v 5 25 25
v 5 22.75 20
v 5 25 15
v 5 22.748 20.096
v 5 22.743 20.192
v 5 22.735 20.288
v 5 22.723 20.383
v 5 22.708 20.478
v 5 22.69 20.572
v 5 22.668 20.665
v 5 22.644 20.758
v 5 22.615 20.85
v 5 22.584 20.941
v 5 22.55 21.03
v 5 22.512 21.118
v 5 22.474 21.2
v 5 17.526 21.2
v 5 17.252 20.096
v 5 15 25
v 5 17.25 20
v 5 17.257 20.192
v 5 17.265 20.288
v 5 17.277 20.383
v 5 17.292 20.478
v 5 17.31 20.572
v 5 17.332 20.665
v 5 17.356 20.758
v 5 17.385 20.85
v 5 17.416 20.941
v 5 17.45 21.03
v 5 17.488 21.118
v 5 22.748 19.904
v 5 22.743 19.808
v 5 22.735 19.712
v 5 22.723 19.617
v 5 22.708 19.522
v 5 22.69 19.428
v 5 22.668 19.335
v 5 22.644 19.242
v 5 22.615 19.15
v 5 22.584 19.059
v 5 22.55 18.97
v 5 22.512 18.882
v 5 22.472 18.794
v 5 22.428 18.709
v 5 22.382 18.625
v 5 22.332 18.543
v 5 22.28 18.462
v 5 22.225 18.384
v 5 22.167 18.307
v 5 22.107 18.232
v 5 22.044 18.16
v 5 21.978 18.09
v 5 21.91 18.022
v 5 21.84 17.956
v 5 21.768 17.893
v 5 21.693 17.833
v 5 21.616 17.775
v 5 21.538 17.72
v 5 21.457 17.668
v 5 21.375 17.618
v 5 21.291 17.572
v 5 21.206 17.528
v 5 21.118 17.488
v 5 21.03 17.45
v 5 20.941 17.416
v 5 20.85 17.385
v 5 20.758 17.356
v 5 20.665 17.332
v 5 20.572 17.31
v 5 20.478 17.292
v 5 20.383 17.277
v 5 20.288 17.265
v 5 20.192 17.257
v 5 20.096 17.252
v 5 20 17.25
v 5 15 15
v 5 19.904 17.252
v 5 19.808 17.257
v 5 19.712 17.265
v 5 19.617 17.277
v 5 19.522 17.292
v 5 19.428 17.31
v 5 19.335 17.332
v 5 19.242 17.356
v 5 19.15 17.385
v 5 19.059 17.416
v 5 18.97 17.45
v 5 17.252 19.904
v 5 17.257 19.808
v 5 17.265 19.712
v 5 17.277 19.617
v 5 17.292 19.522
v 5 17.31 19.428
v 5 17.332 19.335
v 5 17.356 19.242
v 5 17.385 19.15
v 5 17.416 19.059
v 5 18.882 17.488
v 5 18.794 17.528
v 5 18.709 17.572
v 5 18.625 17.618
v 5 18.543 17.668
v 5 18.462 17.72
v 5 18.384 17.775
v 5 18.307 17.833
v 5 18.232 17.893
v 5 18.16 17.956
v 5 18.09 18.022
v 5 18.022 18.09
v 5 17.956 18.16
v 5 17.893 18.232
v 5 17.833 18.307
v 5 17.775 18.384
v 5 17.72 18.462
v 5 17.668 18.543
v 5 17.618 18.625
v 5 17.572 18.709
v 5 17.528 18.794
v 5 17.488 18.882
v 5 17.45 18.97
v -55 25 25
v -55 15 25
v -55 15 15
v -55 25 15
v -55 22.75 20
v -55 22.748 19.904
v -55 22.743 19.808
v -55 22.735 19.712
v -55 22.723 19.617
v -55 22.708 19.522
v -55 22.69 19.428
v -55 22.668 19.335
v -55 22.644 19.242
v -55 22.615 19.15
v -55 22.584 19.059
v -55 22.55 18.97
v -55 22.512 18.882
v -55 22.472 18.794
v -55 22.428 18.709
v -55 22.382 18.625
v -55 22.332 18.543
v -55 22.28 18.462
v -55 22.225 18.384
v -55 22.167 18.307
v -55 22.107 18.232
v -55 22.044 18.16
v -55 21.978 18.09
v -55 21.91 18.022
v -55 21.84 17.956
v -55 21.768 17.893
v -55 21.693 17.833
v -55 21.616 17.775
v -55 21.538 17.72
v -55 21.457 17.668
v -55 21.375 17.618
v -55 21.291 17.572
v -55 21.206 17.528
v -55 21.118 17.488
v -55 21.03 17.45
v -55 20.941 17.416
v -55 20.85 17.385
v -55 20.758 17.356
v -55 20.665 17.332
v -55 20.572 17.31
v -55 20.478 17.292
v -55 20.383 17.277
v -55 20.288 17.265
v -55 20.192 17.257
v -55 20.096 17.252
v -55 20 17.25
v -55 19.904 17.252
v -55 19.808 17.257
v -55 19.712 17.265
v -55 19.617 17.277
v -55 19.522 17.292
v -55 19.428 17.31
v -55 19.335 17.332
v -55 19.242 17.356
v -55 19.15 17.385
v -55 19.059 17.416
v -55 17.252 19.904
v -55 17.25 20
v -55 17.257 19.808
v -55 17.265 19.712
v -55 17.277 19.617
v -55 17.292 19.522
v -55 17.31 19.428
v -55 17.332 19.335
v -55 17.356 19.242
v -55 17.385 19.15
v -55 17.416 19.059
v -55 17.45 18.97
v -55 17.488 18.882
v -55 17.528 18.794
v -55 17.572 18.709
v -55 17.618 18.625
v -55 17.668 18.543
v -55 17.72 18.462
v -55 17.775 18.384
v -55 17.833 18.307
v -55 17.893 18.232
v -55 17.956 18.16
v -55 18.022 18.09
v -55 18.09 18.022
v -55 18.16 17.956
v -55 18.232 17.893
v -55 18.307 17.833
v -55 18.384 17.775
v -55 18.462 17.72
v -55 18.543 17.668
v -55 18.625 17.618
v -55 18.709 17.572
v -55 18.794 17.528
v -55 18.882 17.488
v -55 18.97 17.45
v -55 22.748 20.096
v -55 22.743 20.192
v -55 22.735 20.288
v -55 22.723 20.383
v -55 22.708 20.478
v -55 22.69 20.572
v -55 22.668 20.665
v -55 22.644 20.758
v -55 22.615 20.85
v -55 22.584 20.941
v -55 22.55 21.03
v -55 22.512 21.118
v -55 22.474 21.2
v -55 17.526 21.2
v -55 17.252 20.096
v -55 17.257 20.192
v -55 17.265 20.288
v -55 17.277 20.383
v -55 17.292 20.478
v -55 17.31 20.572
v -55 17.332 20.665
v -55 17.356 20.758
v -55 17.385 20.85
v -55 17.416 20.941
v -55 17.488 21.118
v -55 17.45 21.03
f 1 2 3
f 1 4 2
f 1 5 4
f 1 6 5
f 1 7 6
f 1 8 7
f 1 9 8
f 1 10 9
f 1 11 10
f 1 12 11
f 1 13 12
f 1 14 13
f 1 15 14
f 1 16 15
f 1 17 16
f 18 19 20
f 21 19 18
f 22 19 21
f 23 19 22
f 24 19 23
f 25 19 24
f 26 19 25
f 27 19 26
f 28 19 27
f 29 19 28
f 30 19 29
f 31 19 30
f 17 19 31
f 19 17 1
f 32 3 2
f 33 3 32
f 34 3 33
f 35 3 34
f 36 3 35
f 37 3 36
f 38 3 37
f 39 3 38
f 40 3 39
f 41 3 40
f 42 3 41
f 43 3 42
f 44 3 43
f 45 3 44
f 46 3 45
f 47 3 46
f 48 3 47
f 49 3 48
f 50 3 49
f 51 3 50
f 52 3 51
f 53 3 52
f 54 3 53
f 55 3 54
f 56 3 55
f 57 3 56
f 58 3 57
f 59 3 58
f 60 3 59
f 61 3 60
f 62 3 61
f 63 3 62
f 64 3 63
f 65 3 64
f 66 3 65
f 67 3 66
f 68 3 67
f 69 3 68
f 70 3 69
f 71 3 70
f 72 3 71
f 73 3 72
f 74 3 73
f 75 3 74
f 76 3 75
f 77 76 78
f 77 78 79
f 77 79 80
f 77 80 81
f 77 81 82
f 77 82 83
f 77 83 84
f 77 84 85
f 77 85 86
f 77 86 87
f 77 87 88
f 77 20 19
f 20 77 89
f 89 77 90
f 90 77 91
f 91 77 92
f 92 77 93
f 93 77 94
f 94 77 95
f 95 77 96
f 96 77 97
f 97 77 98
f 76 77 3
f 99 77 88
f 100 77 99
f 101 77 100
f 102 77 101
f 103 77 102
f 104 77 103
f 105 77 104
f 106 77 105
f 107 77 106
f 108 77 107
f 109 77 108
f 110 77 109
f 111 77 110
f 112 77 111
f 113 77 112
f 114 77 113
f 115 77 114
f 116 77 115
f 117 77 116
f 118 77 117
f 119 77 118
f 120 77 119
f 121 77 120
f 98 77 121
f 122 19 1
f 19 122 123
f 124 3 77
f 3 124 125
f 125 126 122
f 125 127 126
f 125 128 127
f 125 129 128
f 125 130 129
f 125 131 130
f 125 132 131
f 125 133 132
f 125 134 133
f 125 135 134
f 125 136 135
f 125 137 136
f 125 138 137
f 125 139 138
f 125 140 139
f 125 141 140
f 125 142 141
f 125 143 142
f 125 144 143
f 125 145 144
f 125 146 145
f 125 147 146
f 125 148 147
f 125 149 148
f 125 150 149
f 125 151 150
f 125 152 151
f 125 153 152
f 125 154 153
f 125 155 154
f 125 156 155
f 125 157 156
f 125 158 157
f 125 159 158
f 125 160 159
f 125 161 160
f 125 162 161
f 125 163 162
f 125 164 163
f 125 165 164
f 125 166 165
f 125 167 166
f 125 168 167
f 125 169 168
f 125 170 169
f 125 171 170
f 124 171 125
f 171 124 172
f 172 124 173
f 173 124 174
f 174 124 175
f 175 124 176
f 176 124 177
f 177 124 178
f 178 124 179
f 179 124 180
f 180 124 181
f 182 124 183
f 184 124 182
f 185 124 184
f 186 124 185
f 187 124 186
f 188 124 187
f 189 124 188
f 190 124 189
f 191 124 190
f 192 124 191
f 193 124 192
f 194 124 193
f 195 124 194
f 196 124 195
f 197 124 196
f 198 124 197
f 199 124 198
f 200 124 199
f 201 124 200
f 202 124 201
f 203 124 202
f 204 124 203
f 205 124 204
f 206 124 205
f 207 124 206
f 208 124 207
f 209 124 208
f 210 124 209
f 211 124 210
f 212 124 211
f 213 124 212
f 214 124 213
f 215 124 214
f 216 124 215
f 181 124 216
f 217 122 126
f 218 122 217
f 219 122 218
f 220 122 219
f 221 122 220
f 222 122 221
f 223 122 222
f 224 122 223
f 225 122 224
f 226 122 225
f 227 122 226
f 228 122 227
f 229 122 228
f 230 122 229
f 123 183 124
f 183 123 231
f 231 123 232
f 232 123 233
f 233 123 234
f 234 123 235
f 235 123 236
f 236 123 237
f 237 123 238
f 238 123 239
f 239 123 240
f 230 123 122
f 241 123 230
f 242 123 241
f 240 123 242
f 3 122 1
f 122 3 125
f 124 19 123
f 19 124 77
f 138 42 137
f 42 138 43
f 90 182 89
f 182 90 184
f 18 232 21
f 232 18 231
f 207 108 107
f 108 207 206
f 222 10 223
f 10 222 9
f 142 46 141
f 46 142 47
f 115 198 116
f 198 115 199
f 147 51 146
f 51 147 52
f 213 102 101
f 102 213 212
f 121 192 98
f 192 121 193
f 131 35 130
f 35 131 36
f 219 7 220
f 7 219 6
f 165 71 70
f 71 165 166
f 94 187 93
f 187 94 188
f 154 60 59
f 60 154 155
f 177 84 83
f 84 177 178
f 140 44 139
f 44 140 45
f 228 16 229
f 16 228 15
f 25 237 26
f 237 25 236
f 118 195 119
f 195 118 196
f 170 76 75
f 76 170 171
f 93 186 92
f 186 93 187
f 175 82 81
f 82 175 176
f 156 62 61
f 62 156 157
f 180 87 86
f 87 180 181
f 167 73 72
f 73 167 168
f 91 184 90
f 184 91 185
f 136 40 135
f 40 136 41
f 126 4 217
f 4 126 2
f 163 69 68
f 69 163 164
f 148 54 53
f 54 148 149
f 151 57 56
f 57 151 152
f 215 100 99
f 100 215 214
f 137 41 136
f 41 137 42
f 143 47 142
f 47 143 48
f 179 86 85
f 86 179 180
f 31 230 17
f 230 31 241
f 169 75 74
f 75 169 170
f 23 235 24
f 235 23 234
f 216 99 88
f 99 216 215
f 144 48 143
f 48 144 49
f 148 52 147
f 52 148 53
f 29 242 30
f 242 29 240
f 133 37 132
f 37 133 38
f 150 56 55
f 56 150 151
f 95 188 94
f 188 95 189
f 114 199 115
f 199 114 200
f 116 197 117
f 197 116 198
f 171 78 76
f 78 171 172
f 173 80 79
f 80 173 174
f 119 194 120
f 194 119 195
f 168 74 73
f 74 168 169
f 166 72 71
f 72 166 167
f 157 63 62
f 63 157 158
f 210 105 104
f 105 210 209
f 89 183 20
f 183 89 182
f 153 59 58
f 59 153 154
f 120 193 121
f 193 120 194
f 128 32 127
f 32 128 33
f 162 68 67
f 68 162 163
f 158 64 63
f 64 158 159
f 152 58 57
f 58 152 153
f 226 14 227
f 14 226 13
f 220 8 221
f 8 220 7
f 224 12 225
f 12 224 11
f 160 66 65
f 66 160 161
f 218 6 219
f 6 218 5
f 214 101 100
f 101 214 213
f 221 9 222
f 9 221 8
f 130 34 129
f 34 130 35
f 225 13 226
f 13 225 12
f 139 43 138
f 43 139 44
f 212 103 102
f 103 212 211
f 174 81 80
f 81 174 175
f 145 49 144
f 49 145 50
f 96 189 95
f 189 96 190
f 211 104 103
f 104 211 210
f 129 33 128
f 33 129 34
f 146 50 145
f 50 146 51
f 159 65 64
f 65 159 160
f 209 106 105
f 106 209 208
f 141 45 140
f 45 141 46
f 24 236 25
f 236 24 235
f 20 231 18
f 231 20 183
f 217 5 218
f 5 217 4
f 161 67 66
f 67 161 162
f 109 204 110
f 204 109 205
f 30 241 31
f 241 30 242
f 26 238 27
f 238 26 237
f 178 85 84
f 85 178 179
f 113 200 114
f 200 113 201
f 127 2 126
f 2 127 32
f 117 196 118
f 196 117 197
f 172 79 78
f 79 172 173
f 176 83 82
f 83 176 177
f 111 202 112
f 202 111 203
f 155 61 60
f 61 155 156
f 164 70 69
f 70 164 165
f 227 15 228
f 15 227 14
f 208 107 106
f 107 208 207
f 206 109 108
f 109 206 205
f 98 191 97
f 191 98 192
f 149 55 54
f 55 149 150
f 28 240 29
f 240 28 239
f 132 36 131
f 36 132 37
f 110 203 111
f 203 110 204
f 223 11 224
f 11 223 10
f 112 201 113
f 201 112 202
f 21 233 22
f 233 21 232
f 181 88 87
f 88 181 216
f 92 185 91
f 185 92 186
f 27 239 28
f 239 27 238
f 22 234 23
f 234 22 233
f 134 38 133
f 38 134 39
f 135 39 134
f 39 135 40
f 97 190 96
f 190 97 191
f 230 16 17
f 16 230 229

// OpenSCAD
// CENTER DRIVER ROD 
union(){
    translate([-55,15,21.2])
    cube([60, 10, 2]);

difference() {
translate([-55,15,15])
cube([60, 10, 10]);

translate([-90,20,20])
rotate([0, 90, 0])
cylinder(h = 100 , d = 5.5, $fn=180);
}
}
// END CENTER DRIVE ROD 
